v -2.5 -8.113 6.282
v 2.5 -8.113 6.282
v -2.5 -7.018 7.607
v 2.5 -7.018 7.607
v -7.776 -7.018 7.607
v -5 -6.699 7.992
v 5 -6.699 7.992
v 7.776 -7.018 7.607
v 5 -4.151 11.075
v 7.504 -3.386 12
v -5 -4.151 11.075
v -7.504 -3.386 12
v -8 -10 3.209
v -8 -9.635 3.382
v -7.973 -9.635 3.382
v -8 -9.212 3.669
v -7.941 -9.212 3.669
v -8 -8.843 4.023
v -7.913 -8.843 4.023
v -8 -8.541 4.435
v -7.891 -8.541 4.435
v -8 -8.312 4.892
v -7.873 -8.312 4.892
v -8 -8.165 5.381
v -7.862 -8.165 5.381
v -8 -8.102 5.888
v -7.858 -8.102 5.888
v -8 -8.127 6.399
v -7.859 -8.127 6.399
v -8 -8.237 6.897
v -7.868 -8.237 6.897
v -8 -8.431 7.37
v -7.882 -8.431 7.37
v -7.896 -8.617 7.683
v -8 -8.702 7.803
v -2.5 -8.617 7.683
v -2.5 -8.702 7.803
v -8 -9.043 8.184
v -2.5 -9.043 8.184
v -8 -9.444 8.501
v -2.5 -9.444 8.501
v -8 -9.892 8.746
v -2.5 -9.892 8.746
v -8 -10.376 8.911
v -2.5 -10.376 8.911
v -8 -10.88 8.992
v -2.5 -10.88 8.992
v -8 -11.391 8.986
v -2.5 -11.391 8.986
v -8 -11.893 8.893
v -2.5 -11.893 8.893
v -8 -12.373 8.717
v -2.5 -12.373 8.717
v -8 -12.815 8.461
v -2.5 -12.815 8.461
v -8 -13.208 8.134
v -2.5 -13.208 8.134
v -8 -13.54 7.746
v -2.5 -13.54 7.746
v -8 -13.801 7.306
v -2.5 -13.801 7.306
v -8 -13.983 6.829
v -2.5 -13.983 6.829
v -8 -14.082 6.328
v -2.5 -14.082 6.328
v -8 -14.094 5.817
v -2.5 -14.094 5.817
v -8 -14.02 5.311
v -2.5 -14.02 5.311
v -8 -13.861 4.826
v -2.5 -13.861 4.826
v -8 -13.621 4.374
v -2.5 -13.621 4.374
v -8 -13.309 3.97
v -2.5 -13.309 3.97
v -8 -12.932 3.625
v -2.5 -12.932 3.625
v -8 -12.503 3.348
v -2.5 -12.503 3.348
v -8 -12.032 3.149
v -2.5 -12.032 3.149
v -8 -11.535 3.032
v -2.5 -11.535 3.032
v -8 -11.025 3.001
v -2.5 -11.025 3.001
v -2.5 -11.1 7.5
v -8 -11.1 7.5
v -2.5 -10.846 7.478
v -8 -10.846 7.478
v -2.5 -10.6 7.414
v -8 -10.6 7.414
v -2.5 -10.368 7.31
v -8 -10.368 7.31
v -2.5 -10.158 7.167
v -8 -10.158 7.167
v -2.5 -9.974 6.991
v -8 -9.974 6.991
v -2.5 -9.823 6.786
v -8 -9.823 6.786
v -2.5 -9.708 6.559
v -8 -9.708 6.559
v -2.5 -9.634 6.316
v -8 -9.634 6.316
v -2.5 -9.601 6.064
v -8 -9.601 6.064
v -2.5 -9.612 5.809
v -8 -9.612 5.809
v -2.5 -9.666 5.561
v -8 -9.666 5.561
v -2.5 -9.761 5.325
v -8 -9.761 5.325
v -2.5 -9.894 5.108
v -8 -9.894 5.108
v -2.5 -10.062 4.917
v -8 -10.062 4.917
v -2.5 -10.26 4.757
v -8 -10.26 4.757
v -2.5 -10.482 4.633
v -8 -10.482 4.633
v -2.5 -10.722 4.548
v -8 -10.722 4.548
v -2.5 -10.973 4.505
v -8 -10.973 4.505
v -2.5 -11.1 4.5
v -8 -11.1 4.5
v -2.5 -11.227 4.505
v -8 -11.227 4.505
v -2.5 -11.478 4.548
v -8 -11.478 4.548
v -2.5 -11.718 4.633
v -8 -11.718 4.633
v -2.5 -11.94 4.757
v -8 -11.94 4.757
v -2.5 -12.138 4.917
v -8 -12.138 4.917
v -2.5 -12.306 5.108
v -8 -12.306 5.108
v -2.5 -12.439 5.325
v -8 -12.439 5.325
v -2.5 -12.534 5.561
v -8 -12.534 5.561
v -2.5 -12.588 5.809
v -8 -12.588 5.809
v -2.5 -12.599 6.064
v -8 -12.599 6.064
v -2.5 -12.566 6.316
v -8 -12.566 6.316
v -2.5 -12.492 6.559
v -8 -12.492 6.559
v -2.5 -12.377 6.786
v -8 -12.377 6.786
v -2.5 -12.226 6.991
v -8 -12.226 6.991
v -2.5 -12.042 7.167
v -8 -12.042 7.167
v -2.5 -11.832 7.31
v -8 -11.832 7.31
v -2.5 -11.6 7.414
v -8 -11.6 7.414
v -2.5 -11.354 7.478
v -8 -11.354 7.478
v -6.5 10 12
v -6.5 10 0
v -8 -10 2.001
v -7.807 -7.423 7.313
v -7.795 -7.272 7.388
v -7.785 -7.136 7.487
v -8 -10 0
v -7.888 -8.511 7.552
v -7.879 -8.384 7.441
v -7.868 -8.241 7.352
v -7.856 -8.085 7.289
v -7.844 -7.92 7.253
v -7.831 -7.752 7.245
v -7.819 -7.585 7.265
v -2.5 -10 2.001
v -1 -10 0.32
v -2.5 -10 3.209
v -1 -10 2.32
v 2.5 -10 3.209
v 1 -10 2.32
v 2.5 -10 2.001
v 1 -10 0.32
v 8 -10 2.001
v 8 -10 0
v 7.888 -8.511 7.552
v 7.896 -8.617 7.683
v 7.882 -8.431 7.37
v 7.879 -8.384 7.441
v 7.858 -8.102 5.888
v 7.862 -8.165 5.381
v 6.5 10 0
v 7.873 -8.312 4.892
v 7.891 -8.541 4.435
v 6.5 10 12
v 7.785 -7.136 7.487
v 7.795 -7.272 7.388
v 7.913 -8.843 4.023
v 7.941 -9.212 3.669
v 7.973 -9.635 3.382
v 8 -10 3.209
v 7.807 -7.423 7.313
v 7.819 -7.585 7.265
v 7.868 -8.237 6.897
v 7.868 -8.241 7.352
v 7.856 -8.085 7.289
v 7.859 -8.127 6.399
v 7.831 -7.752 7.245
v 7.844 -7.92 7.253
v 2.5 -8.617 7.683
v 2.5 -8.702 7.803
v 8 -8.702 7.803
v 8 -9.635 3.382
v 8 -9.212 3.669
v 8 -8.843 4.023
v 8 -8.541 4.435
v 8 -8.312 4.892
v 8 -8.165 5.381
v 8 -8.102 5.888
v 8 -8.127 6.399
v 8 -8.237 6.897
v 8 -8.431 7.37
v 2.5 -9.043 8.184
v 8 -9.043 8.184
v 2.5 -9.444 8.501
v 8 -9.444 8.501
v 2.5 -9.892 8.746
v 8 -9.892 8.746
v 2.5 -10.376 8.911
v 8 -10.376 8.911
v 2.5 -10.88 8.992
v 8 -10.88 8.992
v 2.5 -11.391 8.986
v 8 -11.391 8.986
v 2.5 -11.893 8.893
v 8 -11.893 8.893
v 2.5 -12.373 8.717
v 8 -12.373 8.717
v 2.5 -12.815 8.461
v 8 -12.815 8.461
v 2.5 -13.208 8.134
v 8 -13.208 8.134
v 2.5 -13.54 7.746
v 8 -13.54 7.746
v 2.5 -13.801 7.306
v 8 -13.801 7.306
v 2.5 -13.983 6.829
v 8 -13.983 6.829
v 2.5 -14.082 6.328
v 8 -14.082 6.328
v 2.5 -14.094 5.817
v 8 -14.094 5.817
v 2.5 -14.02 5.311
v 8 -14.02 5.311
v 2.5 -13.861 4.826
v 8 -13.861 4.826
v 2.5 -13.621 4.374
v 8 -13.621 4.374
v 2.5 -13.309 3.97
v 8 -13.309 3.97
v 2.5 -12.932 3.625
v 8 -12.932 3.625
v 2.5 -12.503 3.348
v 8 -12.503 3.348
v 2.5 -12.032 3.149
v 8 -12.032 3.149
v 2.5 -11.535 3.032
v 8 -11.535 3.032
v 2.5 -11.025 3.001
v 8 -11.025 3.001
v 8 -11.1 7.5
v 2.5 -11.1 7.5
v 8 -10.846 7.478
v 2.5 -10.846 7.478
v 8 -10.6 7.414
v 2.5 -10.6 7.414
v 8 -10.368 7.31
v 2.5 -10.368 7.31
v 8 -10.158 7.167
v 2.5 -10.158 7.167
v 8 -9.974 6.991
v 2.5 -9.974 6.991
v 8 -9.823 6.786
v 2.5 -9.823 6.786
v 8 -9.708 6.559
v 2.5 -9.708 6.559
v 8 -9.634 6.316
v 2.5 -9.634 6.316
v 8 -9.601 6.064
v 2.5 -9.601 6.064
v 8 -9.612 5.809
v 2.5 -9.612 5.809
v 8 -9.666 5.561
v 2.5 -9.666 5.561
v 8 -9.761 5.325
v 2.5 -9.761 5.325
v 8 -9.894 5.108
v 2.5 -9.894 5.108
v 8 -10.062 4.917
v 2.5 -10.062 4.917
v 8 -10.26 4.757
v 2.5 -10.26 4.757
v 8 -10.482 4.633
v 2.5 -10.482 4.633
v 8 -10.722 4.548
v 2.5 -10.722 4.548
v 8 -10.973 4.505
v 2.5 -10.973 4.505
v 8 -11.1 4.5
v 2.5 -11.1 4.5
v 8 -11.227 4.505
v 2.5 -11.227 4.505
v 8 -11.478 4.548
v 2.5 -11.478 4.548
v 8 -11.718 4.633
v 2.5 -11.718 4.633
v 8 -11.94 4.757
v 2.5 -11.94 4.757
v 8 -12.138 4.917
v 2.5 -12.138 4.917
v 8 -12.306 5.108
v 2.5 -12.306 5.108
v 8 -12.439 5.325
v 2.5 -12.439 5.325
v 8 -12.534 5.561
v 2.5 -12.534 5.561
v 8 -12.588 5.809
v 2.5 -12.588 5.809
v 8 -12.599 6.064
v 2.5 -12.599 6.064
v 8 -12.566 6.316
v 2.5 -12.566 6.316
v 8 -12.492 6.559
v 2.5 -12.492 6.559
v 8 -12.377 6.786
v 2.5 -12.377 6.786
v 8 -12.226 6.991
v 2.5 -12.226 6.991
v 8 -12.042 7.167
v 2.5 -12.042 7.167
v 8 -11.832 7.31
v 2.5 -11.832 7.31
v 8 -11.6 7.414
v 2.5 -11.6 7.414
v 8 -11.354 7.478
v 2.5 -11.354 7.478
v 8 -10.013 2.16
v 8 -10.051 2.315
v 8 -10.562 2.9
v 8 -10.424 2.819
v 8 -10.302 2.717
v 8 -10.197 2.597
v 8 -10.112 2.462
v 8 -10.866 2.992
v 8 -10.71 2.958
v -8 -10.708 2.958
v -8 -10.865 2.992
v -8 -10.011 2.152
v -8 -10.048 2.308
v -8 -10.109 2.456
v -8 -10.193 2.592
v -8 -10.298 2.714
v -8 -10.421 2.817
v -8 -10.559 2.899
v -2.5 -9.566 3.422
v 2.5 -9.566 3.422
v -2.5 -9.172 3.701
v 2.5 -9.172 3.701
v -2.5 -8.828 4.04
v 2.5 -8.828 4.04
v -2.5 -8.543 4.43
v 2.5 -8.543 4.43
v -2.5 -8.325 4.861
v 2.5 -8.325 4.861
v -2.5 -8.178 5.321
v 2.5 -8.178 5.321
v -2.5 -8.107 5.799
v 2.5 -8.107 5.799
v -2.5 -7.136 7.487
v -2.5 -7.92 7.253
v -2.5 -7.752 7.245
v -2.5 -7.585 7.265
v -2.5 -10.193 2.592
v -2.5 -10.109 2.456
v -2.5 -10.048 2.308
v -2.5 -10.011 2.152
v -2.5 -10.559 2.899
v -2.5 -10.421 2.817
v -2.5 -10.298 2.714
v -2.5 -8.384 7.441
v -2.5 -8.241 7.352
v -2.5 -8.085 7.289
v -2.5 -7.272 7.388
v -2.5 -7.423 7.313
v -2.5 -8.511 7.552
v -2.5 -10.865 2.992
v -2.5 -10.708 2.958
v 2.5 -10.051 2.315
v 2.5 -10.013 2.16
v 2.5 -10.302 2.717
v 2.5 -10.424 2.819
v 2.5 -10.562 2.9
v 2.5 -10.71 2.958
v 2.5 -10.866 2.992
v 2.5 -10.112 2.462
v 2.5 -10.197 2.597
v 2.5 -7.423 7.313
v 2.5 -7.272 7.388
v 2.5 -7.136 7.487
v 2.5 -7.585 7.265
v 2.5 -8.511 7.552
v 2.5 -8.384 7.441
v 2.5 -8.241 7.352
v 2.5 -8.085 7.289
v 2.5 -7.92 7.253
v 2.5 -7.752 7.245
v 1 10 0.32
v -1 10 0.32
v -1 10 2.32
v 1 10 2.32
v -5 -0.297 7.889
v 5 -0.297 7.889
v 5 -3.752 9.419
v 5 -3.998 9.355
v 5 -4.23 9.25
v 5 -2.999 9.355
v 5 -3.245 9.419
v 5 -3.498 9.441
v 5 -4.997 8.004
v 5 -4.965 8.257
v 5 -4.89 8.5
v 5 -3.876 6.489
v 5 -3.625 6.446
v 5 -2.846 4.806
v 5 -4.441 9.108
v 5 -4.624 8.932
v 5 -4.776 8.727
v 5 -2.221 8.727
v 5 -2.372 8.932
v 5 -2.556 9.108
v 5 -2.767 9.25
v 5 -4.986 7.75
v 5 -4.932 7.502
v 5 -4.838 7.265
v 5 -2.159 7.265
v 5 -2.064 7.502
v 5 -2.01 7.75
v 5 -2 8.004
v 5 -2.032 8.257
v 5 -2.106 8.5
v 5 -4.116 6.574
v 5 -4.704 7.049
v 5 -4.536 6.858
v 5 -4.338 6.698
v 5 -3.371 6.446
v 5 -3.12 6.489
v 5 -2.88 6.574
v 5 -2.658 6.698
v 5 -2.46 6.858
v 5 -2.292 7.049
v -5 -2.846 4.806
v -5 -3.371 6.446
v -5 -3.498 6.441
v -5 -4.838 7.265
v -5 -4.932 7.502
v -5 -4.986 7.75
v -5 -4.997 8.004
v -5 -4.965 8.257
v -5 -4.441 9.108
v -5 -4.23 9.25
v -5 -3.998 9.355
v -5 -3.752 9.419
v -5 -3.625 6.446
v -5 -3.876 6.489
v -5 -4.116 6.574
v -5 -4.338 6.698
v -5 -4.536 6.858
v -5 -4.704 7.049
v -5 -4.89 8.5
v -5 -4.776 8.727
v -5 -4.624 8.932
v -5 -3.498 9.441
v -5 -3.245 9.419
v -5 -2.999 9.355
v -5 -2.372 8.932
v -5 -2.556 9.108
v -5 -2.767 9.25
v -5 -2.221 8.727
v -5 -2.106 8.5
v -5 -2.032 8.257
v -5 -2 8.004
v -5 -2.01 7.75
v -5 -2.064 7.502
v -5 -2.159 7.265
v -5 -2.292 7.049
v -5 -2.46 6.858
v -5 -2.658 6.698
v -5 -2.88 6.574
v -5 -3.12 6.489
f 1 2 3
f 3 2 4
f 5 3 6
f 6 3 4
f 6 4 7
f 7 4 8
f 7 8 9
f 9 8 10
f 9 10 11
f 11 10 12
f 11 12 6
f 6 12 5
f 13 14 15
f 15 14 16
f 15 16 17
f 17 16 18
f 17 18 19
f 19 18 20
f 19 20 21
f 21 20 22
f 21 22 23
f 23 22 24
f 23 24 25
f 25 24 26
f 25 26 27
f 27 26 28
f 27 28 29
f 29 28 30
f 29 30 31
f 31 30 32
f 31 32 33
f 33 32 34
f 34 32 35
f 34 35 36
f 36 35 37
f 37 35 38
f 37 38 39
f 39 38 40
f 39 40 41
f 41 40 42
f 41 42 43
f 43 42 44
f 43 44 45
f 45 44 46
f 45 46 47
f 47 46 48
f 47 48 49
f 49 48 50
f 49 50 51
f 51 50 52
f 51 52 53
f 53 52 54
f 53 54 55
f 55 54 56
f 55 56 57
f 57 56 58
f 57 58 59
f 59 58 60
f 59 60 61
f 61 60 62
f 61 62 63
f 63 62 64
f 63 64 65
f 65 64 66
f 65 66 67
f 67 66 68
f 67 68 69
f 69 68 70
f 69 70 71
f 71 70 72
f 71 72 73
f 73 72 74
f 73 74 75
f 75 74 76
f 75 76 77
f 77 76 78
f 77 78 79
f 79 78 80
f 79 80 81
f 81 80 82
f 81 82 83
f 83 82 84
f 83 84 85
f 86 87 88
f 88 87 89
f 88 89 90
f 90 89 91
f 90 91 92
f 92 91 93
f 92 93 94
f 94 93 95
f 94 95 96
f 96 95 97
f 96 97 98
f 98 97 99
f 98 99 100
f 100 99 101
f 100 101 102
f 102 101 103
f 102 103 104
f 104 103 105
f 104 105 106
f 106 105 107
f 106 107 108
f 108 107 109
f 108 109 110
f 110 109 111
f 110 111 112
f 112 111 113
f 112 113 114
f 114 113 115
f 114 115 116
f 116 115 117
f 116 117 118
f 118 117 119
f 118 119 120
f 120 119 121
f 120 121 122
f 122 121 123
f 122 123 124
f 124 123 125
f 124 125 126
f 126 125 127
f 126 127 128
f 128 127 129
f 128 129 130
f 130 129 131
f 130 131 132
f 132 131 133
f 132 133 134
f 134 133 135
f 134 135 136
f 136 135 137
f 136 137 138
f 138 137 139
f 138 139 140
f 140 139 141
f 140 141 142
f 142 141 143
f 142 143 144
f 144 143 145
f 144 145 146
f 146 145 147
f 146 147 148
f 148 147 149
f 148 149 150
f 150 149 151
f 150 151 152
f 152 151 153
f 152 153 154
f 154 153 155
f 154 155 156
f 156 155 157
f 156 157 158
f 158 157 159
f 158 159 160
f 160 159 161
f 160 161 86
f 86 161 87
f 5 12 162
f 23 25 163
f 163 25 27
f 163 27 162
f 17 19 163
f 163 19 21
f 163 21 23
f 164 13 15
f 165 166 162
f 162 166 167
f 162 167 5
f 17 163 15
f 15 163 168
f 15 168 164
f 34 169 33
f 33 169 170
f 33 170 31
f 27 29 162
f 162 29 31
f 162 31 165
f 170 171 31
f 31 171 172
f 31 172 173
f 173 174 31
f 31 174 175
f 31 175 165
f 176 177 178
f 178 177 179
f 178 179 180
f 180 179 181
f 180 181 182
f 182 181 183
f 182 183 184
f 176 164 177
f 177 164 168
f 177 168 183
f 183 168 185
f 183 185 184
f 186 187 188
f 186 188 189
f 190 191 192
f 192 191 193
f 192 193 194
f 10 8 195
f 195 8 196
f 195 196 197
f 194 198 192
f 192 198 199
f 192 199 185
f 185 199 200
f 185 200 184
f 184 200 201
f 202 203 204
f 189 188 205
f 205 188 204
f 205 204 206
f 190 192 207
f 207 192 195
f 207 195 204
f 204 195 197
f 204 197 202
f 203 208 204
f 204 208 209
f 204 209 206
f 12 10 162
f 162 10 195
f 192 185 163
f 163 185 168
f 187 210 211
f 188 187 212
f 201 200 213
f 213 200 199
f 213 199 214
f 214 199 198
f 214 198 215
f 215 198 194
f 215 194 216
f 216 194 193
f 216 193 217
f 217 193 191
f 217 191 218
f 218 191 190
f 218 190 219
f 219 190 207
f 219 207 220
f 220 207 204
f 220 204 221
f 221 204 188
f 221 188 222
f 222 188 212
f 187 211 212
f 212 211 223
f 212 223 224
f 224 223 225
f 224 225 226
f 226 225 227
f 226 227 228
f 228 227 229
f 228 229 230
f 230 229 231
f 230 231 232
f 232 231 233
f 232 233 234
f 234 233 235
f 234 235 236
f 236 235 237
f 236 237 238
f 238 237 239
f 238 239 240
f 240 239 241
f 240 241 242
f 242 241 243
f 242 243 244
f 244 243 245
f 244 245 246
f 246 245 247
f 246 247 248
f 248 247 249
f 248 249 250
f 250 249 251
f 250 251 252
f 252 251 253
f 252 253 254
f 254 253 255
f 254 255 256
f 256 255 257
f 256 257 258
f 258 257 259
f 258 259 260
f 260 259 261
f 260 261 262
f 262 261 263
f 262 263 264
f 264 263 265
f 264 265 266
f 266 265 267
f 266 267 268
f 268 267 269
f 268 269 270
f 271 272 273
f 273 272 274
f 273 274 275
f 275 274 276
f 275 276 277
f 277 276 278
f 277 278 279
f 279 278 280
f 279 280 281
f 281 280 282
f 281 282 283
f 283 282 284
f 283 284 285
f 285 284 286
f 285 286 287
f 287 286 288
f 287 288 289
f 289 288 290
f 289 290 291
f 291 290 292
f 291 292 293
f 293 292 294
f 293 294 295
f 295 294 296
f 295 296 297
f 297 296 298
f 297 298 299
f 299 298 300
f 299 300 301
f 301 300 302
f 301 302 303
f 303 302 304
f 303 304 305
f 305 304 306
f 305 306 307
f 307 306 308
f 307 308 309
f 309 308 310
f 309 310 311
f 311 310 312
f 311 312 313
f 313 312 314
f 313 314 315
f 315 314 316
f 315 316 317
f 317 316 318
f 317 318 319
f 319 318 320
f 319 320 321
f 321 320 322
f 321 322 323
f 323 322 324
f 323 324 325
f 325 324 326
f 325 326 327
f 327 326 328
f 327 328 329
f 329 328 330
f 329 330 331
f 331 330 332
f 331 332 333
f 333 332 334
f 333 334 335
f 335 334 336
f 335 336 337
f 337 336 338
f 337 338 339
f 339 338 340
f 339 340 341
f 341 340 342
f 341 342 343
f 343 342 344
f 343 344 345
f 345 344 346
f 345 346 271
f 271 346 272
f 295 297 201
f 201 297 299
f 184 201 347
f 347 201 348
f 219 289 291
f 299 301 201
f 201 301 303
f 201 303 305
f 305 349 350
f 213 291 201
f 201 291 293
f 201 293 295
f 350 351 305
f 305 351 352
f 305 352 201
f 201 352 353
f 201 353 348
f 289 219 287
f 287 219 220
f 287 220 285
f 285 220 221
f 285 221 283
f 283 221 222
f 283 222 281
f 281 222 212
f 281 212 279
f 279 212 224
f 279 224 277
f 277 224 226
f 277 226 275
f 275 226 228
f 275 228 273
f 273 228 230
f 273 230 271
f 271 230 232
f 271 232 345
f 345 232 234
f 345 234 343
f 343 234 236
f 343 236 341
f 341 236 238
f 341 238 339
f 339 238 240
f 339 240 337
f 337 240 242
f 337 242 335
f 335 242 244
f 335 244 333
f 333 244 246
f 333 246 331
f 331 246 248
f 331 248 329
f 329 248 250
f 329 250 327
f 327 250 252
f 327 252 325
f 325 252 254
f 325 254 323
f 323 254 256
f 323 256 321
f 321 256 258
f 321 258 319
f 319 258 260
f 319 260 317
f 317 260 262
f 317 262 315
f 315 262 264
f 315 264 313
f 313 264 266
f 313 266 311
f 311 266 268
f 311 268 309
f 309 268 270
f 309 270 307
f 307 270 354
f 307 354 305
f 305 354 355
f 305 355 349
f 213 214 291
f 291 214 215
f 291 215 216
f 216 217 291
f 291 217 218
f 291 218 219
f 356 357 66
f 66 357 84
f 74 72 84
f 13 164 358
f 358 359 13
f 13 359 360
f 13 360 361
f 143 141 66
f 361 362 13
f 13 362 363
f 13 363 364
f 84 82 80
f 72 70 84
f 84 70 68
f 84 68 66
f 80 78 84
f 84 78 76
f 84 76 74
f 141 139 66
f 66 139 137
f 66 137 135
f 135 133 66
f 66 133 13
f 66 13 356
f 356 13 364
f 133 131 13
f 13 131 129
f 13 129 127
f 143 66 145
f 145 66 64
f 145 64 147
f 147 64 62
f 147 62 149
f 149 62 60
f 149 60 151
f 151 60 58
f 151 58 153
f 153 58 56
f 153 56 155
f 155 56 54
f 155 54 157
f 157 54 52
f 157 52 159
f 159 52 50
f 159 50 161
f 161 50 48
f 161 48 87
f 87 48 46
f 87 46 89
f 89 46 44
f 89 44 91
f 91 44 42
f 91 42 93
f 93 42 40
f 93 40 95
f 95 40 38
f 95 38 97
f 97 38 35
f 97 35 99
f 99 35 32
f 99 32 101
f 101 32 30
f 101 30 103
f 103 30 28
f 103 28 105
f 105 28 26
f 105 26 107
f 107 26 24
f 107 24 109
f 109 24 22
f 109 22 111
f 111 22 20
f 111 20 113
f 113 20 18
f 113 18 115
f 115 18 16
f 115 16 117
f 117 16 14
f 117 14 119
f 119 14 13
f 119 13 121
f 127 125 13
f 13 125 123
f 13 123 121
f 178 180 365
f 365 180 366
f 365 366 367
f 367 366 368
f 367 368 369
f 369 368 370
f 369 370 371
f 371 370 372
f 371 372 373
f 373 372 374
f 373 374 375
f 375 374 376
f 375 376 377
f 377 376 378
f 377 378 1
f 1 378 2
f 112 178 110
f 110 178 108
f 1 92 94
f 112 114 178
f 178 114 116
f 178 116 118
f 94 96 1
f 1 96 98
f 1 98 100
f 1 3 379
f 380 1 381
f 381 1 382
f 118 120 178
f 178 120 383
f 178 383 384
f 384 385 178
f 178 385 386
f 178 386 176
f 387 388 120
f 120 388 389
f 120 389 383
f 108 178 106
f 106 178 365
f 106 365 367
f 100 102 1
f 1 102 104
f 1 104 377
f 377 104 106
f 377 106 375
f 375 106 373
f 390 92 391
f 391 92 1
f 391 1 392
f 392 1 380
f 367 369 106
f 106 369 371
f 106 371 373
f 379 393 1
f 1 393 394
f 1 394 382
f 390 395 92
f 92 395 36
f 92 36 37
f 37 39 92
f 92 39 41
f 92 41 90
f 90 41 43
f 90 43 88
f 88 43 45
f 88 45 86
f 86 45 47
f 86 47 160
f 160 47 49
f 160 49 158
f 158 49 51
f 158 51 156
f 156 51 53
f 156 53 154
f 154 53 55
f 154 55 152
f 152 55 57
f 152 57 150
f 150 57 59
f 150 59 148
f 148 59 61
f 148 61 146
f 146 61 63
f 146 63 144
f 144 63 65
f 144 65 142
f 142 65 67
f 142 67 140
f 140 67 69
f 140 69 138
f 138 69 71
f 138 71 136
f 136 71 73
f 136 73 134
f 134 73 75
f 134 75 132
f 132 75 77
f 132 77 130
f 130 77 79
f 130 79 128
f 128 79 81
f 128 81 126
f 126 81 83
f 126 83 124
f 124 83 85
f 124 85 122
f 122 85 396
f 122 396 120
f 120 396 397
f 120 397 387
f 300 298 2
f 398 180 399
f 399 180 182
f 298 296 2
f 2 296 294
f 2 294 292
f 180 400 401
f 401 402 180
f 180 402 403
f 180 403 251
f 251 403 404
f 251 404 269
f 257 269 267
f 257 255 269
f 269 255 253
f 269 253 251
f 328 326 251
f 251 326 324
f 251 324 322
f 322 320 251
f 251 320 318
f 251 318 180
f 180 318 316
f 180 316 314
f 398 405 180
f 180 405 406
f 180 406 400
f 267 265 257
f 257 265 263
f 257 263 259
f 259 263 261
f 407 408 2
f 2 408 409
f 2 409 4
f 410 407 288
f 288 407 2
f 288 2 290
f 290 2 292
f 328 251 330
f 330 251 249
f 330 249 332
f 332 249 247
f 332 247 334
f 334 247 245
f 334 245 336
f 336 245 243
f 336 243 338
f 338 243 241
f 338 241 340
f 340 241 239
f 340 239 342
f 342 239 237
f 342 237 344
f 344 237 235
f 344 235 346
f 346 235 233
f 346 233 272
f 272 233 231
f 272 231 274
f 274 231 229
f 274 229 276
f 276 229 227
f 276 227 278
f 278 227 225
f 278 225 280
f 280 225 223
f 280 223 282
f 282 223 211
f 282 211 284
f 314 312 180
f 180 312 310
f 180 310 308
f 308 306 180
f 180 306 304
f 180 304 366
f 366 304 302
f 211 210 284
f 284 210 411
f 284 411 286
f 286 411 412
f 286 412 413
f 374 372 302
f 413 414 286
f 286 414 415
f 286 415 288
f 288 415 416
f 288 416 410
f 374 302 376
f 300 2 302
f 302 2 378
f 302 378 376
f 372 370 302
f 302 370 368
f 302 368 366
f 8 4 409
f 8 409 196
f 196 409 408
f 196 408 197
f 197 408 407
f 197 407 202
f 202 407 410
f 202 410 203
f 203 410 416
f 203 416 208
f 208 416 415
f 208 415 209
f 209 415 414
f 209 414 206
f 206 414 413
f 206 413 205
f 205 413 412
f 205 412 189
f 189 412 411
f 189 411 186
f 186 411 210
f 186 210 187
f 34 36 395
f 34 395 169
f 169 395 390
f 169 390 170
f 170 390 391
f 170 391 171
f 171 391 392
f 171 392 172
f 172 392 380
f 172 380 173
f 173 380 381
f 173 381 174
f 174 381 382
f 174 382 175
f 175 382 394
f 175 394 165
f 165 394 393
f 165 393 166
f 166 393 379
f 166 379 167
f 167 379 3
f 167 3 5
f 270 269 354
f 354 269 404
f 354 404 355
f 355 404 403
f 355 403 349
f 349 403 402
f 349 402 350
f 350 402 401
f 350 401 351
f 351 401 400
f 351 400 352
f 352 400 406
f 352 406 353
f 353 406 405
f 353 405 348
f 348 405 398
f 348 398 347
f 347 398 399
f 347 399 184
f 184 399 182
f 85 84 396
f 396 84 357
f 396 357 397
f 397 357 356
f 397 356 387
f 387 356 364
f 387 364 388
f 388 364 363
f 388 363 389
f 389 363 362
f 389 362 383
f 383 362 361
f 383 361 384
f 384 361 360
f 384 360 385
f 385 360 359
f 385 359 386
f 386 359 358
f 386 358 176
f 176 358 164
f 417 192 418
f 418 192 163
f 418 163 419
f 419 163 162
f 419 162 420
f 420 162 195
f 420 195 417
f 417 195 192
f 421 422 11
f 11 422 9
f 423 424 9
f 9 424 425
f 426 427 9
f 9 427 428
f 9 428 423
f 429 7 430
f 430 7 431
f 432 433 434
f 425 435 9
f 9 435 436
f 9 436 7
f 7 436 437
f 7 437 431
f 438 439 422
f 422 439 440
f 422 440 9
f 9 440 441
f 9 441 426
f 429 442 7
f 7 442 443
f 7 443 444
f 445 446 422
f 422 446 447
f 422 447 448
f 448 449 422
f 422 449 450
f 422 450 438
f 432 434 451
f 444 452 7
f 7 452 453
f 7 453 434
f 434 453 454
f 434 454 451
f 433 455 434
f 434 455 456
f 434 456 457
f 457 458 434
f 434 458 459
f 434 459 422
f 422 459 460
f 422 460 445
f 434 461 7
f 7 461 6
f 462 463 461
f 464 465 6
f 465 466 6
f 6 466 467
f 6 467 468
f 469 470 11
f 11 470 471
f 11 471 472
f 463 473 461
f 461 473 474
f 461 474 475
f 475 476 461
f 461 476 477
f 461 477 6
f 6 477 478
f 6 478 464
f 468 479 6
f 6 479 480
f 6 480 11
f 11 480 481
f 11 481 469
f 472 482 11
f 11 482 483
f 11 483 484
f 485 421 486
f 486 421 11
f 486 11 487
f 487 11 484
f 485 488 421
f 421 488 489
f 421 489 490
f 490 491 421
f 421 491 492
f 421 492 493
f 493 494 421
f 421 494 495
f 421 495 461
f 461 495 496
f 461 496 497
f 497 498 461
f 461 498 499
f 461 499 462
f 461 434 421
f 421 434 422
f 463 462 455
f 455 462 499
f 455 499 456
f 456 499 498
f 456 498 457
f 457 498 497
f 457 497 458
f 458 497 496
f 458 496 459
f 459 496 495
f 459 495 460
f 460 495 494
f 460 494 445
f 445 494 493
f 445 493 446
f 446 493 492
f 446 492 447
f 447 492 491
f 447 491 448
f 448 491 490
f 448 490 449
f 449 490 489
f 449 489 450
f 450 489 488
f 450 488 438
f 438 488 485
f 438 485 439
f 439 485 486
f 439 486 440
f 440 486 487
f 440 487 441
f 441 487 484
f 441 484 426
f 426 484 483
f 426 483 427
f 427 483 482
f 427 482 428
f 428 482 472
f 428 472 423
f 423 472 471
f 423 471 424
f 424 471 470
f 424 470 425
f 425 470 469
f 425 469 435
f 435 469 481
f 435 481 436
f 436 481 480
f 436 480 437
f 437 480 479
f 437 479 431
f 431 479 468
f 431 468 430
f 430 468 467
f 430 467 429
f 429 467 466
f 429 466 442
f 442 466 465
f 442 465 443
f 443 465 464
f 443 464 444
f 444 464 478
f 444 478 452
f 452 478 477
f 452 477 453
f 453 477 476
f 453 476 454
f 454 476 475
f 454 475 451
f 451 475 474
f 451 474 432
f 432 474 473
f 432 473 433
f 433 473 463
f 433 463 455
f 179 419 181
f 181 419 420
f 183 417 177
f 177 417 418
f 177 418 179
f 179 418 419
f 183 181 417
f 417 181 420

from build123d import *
from build123d.topology import SkipClean

# Parameters (mm, degrees)
BOSS_EXTRUDE1_DEPTH     = 12
CUT_EXTRUDE1_DEPTH      = 22.914607001
CUT_EXTRUDE1_DEPTH_BACK = 22.914607001
SKETCH4_R               = 3
SKETCH4_R_2             = 1.5
BOSS_EXTRUDE2_DEPTH     = 8
SKETCH5_R               = 3
SKETCH5_R_2             = 1.5
CUT_EXTRUDE2_DEPTH      = 2.5
FILLET1_R               = 1
FILLET2_R               = 1
CUT_EXTRUDE3_DEPTH      = 22.914607001
CUT_EXTRUDE3_DEPTH_BACK = 22.914607001
SKETCH6_W               = 12
SKETCH6_H               = 6.5
CUT_EXTRUDE4_DEPTH      = 5
BOSS_EXTRUDE3_REACH     = 24.623
SKETCH8_R               = 1.5
SKETCH9_W               = 2
SKETCH9_H               = 33.212886517
CUT_EXTRUDE5_DEPTH      = 1


with BuildPart() as part:
    # Sketch1 → Boss-Extrude1 (new body)
    with BuildSketch(Plane.XY):
        with BuildLine():
            Line((-8, -10), (8, -10))
            Line((8, -10), (6.5, 10))
            ThreePointArc((6.5, 10), (0, 16.5), (-6.5, 10))
            Line((-6.5, 10), (-8, -10))
        make_face()
    extrude(amount=BOSS_EXTRUDE1_DEPTH)

    # Sketch3 → Cut-Extrude1 (cut, two sides: drawn at the far end of the back side and taken through both)
    with BuildSketch(Plane(origin=(0, 0, 0), x_dir=(0, 0, -1), z_dir=(1, 0, 0)).offset(-CUT_EXTRUDE1_DEPTH_BACK)):
        Polygon((-4, -10), (-12, -3.386045056), (-12, -10), align=None)
    extrude(amount=CUT_EXTRUDE1_DEPTH + CUT_EXTRUDE1_DEPTH_BACK, mode=Mode.SUBTRACT)

    # Sketch4 → Boss-Extrude2 (add, symmetric)
    with BuildSketch(Plane(origin=(0, 0, 0), x_dir=(0, 0, -1), z_dir=(1, 0, 0))):
        with Locations((-6, -11.1)):
            Circle(SKETCH4_R)
        with Locations((-6, -11.1)):
            Circle(SKETCH4_R_2, mode=Mode.SUBTRACT)
    extrude(amount=BOSS_EXTRUDE2_DEPTH, both=True)

    # Sketch5 → Cut-Extrude2 (cut, symmetric)
    with SkipClean():  # the faces are left unmerged after this step: merging them gives an invalid solid
        with BuildSketch(Plane(origin=(0, 0, 0), x_dir=(0, 0, -1), z_dir=(1, 0, 0))):
            with Locations((-6, -11.1)):
                Circle(SKETCH5_R)
            with Locations((-6, -11.1)):
                Circle(SKETCH5_R_2, mode=Mode.SUBTRACT)
        extrude(amount=CUT_EXTRUDE2_DEPTH, both=True, mode=Mode.SUBTRACT)

    # Fillet1
    fillet1_edges = [part.edges().sort_by_distance(p)[0] for p in [
        (5.179248458, -8.113292219, 6.282093298),
        (-5.179248458, -8.113292219, 6.282093298),
    ]]
    fillet(fillet1_edges, radius=FILLET1_R)

    # Fillet2
    # the kernel refuses this fillet: 1 mm, written as the material it adds along each edge
    with BuildSketch(Plane(origin=(-8, -10, 3.208942853), x_dir=(0, 0, -1), z_dir=(1, 0, 0)), Plane(origin=(2.5, -10, 3.208942853), x_dir=(0, 0, -1), z_dir=(1, 0, 0))) as fillet2_piece_1:
        with BuildLine():
            CenterArc((1.207692657, -1), FILLET2_R, 90, 91.432543738)
            ThreePointArc((0.208005206, -1.025), (0.149015506, -0.503365446), (0, 0))
            Line((0, 0), (1.207692657, 0))
        make_face()
    extrude(amount=5.5)

    # Sketch6 → Cut-Extrude3 (cut, two sides: drawn at the far end of the back side and taken through both)
    with BuildSketch(Plane(origin=(0, 0, 0), x_dir=(0, 0, -1), z_dir=(1, 0, 0)).offset(-CUT_EXTRUDE3_DEPTH_BACK)):
        with Locations((-6, 13.25)):
            Rectangle(SKETCH6_W, SKETCH6_H)
    extrude(amount=CUT_EXTRUDE3_DEPTH + CUT_EXTRUDE3_DEPTH_BACK, mode=Mode.SUBTRACT)

    # Sketch7 → Cut-Extrude4 (cut)
    with BuildSketch(Plane(origin=(0, -7.904323178, 6.53485467), x_dir=(1, 0, 0), z_dir=(0, -0.770712909441233, 0.6371825572162423))):
        Polygon((-5, 5.891026066), (0, 5.891026066), (5, 5.891026066), (5, 1.891026066), (-5, 1.891026066), align=None)
    extrude(amount=-CUT_EXTRUDE4_DEPTH, mode=Mode.SUBTRACT)

    # Sketch8 → Boss-Extrude3 (add, up to next)
    with BuildSketch(Plane(origin=(-5, 0, 0), x_dir=(0, 0, -1), z_dir=(1, 0, 0)), mode=Mode.PRIVATE) as boss_extrude3_sk1:
        with Locations(Location((-7.940762297, -3.498246966, 0), (0, 0, 180))):
            Circle(SKETCH8_R)
    boss_extrude3_tool1 = extrude(boss_extrude3_sk1.sketch, amount=BOSS_EXTRUDE3_REACH, mode=Mode.PRIVATE) - part.part
    add(boss_extrude3_tool1.solids().sort_by_distance((-5, -3.498247, 7.940762))[0])

    # Sketch9 → Cut-Extrude5 (cut, symmetric)
    with BuildSketch(Plane(origin=(0, 0, 0), x_dir=(0, 0, -1), z_dir=(1, 0, 0))):
        with Locations((-1.32, 6.606443259)):
            Rectangle(SKETCH9_W, SKETCH9_H)
    extrude(amount=CUT_EXTRUDE5_DEPTH, both=True, mode=Mode.SUBTRACT)


solid = part.part
